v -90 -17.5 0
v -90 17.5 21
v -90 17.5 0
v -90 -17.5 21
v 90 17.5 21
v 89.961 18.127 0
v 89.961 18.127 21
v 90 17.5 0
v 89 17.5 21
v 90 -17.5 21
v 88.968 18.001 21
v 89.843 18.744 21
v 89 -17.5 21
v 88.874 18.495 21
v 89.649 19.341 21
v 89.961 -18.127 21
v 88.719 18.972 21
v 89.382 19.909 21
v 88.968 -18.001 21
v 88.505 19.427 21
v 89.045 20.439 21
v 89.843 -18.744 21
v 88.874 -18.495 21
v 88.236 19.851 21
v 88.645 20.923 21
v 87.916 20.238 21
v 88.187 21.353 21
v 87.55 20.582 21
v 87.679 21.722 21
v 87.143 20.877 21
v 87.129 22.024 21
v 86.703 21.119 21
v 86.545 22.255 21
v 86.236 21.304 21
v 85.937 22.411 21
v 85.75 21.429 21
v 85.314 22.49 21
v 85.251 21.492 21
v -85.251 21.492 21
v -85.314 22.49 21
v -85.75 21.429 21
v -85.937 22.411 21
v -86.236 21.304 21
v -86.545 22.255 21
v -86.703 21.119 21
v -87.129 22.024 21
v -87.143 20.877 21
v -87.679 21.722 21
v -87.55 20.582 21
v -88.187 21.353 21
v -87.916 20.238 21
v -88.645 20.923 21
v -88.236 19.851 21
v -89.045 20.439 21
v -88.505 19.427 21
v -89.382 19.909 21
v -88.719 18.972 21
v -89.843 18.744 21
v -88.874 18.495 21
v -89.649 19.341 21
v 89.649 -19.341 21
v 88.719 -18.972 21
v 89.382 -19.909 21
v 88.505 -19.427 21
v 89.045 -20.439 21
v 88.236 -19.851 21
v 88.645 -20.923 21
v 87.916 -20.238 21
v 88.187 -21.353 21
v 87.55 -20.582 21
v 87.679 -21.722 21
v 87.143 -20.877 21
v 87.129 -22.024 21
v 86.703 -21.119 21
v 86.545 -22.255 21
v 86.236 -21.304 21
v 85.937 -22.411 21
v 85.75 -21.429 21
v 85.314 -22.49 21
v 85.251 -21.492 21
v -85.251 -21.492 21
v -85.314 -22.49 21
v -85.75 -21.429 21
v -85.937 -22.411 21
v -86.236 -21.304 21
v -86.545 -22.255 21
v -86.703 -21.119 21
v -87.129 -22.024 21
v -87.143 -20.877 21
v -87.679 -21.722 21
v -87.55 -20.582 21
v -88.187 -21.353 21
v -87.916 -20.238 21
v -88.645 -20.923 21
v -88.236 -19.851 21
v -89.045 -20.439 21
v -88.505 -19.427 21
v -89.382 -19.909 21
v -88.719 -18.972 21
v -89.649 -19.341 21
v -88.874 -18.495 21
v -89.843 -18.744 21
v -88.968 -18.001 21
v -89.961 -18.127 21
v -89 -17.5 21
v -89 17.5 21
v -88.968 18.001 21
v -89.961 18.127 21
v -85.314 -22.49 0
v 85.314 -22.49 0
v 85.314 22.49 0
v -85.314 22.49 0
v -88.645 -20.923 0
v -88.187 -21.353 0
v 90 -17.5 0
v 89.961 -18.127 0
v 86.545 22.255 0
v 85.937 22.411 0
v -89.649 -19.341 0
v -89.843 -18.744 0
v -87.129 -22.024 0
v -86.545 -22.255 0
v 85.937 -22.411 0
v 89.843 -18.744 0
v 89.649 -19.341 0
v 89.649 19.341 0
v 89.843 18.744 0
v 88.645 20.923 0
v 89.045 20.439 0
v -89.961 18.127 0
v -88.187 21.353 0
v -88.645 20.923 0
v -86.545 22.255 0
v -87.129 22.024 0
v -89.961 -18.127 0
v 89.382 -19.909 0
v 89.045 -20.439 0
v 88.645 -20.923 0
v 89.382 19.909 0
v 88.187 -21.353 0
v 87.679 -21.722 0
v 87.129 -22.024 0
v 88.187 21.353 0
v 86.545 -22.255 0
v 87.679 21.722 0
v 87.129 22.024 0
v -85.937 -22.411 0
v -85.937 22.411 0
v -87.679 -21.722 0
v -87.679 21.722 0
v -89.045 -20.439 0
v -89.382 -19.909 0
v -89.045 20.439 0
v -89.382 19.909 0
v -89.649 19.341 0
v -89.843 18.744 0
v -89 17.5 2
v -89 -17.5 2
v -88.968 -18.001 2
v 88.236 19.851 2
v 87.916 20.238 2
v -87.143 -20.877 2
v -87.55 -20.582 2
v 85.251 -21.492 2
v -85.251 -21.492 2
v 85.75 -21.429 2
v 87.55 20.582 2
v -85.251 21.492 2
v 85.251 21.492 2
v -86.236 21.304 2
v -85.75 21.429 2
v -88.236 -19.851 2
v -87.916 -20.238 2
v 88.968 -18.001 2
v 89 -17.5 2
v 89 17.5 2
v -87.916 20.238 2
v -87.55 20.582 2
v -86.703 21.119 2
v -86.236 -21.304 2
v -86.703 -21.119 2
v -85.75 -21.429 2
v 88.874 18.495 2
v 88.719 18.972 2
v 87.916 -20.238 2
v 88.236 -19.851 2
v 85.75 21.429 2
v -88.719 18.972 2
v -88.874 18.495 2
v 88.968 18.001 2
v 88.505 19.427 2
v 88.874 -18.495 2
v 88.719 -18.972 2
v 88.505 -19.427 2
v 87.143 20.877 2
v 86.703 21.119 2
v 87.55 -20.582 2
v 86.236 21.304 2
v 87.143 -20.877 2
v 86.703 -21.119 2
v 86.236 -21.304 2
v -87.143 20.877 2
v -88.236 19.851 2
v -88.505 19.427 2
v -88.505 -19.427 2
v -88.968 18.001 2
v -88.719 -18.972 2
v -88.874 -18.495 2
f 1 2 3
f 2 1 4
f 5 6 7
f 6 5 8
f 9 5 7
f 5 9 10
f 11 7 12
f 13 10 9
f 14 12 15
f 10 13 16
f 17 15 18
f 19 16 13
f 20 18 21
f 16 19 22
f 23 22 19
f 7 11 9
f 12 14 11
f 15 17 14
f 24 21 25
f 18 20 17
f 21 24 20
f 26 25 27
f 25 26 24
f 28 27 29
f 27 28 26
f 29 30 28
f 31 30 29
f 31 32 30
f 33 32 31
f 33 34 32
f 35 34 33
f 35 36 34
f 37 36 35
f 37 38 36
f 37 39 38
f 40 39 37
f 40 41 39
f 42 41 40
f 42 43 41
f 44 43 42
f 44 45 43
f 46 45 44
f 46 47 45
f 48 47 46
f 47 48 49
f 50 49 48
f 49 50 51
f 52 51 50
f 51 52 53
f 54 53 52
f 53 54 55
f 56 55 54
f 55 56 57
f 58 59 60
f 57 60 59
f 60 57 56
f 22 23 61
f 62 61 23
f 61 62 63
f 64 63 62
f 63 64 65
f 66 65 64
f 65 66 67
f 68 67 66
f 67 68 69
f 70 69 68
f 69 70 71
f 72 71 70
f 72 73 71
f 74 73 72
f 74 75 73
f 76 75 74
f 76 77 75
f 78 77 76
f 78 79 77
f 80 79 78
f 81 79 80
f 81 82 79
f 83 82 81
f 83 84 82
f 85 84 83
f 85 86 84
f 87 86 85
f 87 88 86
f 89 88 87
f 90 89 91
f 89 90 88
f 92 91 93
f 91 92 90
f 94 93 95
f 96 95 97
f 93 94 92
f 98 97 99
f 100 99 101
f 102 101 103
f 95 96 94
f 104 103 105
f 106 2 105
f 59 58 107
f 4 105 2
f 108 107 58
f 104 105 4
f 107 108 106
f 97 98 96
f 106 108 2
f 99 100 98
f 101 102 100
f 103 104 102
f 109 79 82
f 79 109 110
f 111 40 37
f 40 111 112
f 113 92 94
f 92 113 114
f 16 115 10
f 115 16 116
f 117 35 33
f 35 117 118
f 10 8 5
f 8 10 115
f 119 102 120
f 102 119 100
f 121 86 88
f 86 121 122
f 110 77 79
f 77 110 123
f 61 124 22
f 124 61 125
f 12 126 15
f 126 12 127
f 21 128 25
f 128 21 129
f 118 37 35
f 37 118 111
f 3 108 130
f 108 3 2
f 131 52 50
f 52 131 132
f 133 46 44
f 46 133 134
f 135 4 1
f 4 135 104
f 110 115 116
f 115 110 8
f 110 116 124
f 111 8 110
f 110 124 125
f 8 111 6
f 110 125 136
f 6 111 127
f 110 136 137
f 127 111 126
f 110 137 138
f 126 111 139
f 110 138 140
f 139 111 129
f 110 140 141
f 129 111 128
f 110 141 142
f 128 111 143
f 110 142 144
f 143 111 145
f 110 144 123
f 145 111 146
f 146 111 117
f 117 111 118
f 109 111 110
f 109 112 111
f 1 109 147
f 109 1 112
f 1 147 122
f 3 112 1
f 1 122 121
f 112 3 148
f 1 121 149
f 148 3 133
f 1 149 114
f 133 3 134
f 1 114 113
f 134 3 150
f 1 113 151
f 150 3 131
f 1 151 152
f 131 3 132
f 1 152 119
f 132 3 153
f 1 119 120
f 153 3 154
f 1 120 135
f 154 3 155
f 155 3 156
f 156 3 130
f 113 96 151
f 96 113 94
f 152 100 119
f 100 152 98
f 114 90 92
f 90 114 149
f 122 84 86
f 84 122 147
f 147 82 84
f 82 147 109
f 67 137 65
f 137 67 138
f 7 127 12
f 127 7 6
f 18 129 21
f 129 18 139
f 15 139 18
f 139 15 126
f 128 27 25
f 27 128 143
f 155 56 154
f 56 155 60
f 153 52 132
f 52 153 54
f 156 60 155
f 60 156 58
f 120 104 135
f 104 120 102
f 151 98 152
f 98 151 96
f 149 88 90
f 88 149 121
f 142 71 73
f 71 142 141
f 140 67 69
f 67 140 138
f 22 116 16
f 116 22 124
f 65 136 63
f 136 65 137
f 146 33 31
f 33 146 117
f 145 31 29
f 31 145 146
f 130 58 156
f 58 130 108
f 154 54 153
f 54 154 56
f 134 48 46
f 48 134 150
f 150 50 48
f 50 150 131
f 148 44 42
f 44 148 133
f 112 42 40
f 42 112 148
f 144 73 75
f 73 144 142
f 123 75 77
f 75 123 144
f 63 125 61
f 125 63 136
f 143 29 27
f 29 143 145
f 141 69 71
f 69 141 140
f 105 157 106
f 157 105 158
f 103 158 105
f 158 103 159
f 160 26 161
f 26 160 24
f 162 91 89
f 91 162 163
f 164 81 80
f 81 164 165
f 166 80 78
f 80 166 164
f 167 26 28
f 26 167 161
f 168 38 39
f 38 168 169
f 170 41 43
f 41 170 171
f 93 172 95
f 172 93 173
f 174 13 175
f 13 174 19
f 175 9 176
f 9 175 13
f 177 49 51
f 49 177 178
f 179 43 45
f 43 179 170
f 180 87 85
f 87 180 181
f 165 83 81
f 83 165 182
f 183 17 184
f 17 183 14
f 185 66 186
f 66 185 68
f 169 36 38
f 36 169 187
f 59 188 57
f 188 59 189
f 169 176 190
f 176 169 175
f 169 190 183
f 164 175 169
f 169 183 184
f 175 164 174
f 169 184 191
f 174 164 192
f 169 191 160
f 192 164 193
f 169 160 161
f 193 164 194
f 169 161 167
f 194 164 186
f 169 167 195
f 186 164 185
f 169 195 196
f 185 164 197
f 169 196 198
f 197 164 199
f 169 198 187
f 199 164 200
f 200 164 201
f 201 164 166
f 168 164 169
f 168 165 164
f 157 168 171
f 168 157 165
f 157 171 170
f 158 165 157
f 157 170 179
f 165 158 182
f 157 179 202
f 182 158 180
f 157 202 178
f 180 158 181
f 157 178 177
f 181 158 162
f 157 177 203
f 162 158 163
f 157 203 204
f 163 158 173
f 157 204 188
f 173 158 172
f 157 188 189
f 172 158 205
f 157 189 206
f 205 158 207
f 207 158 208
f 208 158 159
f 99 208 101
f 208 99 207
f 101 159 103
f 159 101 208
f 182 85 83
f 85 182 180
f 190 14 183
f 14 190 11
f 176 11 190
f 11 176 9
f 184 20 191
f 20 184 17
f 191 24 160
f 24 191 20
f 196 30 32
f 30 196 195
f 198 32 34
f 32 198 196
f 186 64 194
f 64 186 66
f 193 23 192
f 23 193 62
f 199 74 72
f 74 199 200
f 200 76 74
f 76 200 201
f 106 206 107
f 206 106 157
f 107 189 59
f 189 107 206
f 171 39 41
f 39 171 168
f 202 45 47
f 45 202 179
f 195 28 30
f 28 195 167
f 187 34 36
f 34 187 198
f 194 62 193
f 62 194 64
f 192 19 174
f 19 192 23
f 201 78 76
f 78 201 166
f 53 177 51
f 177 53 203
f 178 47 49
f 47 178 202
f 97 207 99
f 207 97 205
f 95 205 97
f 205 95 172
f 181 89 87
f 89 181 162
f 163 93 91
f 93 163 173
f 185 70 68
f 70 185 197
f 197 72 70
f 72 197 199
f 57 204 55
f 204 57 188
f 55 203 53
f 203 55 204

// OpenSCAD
$fn = 50;


difference() {
	union() {
		hull() {
			translate(v = [-85.0000000000, 17.5000000000, 0]) {
				cylinder(h = 21, r = 5);
			}
			translate(v = [85.0000000000, 17.5000000000, 0]) {
				cylinder(h = 21, r = 5);
			}
			translate(v = [-85.0000000000, -17.5000000000, 0]) {
				cylinder(h = 21, r = 5);
			}
			translate(v = [85.0000000000, -17.5000000000, 0]) {
				cylinder(h = 21, r = 5);
			}
		}
	}
	union() {
		translate(v = [0, 0, 2]) {
			hull() {
				translate(v = [-85.0000000000, 17.5000000000, 0]) {
					cylinder(h = 19, r = 4);
				}
				translate(v = [85.0000000000, 17.5000000000, 0]) {
					cylinder(h = 19, r = 4);
				}
				translate(v = [-85.0000000000, -17.5000000000, 0]) {
					cylinder(h = 19, r = 4);
				}
				translate(v = [85.0000000000, -17.5000000000, 0]) {
					cylinder(h = 19, r = 4);
				}
			}
		}
	}
}
